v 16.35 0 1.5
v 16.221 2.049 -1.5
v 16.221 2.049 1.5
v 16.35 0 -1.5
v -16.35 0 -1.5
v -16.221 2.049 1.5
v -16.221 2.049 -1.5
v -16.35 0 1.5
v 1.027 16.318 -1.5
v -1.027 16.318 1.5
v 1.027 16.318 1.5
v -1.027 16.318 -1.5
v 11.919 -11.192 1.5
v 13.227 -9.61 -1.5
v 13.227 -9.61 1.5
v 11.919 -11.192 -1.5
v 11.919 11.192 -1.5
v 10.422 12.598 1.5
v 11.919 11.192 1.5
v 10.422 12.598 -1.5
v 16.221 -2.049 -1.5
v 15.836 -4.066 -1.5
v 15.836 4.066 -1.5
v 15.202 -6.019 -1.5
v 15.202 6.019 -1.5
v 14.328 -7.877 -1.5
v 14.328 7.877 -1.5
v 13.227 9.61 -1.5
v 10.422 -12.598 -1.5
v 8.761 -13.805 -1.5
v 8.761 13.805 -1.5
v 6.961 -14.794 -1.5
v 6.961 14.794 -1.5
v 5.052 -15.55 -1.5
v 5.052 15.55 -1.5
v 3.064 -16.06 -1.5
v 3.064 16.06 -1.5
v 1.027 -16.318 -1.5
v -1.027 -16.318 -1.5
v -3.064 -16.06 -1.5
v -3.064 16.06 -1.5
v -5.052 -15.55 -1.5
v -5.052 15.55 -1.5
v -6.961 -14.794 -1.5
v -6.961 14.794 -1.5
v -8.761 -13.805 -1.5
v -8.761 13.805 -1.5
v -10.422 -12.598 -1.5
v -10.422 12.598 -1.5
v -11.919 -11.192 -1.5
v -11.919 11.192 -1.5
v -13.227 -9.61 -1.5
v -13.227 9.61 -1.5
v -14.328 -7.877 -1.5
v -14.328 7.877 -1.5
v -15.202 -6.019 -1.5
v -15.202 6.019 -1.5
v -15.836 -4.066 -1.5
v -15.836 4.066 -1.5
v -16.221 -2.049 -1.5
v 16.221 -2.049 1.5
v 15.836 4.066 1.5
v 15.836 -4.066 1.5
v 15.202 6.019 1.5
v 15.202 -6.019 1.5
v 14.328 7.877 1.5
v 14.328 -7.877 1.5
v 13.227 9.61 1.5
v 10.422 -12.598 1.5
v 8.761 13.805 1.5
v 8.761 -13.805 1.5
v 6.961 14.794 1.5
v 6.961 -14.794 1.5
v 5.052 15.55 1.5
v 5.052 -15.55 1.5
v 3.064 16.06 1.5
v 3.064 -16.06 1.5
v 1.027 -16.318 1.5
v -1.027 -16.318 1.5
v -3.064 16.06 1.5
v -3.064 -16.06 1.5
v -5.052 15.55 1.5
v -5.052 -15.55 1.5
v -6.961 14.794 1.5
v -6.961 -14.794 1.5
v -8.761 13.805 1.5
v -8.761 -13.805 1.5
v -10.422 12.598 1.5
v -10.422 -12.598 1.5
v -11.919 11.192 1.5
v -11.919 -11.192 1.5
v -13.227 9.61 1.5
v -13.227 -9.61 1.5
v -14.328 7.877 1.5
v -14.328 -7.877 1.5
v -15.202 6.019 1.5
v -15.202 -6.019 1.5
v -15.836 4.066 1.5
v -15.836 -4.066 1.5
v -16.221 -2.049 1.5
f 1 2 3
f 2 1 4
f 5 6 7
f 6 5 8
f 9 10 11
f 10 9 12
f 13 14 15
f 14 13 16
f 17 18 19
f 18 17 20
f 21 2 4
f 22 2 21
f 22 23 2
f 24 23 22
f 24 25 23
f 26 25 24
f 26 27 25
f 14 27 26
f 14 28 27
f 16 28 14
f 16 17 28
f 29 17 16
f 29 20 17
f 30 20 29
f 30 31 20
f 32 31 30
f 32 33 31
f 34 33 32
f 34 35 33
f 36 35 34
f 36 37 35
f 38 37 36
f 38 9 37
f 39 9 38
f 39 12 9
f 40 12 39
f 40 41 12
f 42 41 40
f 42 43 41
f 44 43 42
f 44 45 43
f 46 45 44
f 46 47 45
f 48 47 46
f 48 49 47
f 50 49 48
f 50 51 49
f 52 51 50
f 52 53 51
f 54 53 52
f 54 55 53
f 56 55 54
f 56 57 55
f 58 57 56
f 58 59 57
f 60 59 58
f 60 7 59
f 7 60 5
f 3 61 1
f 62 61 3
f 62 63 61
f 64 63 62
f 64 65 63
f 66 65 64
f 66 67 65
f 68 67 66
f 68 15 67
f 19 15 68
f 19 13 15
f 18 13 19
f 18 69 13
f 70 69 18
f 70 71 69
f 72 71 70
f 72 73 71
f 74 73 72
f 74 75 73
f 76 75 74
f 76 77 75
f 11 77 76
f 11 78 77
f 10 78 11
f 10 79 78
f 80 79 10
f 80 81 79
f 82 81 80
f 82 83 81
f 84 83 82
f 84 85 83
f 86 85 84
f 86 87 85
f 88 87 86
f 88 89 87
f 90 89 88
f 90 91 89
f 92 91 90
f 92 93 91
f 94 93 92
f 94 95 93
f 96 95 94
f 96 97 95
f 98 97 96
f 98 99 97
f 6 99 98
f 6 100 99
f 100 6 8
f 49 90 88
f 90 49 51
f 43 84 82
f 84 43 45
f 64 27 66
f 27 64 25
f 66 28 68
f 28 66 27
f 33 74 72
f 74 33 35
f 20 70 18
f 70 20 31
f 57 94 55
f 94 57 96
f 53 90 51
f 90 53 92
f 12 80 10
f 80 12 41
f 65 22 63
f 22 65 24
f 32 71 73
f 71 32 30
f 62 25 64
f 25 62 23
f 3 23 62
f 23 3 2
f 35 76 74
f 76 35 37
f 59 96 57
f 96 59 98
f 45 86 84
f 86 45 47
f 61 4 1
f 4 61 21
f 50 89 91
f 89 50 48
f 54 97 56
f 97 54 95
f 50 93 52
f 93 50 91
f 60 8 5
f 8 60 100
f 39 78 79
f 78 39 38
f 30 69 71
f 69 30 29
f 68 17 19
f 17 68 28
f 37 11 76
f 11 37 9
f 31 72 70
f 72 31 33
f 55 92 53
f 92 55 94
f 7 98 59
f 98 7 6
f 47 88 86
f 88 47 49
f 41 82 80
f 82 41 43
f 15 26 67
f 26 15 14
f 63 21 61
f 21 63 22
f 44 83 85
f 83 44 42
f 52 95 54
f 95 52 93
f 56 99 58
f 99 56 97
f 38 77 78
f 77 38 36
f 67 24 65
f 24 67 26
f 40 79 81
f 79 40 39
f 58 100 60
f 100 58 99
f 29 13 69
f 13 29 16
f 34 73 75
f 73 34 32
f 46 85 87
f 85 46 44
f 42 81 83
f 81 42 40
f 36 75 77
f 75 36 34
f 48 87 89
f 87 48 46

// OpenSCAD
$fn = 50;


difference() {
	union() {
		translate(v = [0, 0, -1.5000000000]) {
			cylinder(h = 3, r = 16.3500000000);
		}
	}
	union() {
		translate(v = [0, 0, -100.0000000000]) {
			cylinder(h = 200, r = 0);
		}
	}
}
